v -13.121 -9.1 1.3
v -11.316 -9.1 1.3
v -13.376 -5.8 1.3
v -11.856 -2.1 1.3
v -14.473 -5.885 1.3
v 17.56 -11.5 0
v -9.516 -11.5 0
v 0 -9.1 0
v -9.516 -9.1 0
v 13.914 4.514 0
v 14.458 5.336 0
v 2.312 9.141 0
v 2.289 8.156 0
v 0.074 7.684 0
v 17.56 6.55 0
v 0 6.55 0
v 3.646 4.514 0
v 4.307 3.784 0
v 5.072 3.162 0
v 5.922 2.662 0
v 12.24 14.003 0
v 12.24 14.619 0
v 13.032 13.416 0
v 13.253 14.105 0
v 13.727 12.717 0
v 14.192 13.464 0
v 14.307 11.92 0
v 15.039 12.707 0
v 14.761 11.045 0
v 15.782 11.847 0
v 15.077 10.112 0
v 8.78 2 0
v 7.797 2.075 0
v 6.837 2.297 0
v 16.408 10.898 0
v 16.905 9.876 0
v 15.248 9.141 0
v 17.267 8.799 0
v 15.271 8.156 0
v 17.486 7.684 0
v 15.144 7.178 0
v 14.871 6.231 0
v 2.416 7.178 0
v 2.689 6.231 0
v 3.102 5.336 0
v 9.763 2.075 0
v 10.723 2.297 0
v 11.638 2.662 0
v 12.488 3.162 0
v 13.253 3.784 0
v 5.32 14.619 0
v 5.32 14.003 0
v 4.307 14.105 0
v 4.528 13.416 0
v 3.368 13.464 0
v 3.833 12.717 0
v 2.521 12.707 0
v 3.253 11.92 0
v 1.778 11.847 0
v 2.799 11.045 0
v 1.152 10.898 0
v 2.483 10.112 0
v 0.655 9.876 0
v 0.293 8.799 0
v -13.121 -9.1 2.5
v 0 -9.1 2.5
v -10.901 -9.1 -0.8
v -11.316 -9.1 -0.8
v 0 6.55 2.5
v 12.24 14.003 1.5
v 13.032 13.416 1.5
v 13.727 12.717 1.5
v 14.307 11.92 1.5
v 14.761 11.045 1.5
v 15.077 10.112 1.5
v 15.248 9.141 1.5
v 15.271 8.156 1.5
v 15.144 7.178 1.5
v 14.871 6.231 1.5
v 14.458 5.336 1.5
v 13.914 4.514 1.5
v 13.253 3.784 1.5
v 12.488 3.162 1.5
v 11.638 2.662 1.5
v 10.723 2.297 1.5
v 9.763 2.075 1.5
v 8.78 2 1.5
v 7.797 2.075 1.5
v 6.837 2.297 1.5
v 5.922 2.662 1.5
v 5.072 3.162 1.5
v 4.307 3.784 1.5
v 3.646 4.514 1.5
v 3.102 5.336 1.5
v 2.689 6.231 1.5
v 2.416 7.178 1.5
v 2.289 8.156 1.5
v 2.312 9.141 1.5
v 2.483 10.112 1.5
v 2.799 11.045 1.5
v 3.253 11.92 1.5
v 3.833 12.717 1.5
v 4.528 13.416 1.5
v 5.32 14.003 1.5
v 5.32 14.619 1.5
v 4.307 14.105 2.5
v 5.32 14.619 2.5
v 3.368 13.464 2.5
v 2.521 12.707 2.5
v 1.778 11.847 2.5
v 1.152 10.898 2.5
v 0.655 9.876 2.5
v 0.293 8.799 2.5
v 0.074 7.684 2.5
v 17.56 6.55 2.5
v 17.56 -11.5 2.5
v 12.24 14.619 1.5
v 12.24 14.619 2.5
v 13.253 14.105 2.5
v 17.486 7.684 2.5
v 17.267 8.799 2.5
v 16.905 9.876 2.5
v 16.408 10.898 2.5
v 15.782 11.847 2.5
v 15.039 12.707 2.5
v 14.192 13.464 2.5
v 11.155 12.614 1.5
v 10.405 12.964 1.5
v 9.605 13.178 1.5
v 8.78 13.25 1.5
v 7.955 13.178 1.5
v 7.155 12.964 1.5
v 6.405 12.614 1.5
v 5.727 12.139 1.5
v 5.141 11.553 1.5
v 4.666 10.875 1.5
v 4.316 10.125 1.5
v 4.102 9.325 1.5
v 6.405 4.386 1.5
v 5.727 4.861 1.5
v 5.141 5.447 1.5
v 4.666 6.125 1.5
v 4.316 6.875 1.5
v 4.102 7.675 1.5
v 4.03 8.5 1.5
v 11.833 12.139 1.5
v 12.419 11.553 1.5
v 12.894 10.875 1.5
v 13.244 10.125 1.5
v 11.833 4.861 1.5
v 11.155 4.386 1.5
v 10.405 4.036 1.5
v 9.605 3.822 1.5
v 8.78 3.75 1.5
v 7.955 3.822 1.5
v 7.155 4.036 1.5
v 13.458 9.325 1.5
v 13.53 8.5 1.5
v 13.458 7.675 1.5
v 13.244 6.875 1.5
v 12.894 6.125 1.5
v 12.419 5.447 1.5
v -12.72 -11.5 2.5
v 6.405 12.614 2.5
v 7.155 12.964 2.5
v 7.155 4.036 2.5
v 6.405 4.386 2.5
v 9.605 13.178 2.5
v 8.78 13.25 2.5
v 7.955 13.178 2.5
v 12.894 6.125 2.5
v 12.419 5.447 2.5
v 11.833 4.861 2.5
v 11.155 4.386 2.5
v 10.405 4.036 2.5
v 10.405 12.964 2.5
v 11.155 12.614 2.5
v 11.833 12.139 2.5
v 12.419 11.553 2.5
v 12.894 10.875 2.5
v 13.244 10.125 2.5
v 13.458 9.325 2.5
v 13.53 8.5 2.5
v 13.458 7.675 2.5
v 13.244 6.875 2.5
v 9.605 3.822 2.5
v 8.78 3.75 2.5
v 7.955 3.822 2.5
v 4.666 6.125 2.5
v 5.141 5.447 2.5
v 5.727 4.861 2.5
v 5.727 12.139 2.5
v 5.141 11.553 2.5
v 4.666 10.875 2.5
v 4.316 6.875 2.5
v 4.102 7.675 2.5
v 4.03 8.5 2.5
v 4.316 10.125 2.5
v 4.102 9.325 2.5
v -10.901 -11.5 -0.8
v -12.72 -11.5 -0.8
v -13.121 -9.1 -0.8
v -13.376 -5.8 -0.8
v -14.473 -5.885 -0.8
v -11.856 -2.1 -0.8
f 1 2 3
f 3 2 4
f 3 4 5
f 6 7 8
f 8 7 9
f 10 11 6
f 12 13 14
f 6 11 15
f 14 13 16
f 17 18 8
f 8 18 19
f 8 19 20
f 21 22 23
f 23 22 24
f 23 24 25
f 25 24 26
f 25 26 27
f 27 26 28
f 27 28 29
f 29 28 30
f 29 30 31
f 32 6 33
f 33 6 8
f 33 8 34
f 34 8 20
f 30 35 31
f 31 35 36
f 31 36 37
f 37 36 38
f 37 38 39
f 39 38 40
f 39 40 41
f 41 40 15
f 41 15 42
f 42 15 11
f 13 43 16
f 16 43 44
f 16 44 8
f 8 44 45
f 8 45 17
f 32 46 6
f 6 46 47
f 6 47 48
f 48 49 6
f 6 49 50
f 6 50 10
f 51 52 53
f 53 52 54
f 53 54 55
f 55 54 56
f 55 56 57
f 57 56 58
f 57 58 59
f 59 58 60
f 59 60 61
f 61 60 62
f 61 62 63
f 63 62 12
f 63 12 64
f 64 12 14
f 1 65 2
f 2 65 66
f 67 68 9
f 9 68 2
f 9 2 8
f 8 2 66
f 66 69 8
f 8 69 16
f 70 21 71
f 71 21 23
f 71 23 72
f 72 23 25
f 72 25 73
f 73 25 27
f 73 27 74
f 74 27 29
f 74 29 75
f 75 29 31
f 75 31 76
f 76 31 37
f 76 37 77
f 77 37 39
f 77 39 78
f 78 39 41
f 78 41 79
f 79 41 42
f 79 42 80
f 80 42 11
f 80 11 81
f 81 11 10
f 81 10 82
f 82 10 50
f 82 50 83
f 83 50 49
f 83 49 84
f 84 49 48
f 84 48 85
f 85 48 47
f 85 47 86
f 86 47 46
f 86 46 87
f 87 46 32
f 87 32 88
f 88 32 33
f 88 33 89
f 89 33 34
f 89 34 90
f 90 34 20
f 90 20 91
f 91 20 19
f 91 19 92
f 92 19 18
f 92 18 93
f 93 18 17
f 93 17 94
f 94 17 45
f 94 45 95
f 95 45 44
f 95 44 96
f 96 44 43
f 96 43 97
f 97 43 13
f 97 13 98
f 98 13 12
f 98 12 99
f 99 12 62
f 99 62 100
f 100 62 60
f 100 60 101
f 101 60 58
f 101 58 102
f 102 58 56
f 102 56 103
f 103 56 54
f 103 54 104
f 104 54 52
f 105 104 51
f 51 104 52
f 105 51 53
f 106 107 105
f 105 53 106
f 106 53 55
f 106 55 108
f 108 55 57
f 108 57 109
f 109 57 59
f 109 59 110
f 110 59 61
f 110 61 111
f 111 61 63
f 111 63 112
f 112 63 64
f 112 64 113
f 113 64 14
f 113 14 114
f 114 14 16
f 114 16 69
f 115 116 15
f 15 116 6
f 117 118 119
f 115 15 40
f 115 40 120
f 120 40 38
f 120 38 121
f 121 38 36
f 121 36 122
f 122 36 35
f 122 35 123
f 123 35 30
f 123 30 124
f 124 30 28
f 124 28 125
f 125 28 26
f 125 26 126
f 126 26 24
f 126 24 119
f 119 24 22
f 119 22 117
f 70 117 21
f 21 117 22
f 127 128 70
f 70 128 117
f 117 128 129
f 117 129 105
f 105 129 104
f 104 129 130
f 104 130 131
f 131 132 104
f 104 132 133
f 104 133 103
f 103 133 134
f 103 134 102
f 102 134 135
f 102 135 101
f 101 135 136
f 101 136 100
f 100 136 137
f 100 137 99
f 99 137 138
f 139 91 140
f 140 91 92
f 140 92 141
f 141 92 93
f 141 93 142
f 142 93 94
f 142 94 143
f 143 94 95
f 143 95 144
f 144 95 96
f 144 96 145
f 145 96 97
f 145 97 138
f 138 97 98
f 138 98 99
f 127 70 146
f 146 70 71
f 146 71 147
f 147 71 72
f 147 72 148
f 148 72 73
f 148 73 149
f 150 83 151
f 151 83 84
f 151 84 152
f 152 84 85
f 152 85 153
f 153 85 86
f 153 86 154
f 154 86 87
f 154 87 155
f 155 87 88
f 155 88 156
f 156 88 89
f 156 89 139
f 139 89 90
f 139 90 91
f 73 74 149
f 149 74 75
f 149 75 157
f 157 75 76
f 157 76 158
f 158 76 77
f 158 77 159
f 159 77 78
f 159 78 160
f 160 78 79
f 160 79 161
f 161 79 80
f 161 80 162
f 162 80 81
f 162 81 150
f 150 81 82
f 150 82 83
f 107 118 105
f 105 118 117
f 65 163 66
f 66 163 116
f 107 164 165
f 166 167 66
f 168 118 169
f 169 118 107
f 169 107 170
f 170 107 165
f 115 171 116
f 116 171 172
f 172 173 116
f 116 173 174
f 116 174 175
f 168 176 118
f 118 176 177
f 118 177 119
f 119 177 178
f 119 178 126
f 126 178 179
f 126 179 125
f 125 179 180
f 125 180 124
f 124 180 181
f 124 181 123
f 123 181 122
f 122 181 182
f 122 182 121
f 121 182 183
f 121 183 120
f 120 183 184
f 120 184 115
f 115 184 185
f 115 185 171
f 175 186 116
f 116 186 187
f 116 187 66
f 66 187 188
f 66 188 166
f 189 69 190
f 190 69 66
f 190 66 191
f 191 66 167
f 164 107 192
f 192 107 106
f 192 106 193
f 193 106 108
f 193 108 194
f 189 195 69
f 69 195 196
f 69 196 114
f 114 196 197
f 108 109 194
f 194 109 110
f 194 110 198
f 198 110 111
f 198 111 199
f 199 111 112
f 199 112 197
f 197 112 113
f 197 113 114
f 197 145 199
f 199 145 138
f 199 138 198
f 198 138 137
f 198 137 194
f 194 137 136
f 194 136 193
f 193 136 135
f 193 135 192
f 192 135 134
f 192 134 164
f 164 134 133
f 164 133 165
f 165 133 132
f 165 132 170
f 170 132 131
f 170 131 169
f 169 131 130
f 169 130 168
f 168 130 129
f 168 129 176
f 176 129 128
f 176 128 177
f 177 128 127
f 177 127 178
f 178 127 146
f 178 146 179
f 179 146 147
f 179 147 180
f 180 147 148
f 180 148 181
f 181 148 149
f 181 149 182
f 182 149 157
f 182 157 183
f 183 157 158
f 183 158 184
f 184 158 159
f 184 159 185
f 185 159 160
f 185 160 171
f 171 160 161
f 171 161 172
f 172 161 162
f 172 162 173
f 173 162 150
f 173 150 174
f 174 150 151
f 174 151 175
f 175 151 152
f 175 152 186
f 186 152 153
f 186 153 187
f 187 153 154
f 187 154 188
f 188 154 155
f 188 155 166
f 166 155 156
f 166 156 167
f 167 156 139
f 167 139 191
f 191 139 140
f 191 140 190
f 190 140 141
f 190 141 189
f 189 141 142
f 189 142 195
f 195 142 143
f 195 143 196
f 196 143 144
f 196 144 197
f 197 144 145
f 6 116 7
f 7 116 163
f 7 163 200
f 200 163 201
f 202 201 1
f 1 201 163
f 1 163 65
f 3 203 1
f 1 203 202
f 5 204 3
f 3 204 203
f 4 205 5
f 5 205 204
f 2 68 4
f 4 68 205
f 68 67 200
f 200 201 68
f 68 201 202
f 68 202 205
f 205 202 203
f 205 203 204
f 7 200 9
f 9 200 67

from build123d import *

# Parameters (mm, degrees)
BOSS_EXTRUDE1_DEPTH      = 1.5
BOSS_EXTRUDE2_DEPTH      = 1
SKETCH4_R                = 4.75
CUT_EXTRUDE1_DEPTH       = 23.898325822
SKETCH5_W                = 17.56
SKETCH5_H                = 2.5
BOSS_EXTRUDE3_DEPTH      = 0.15
SKETCH6_W                = 17.56
SKETCH6_H                = 2.5
BOSS_EXTRUDE4_DEPTH      = 11.35
SKETCH7_W                = 2.5
SKETCH7_H                = 2.4
BOSS_EXTRUDE5_DEPTH      = 12.72
BOSS_EXTRUDE6_DEPTH      = 0.8
BOSS_EXTRUDE6_DEPTH_BACK = 1.3
SKETCH9_W                = 1.40416608
SKETCH9_H                = 2.4
BOSS_EXTRUDE7_DEPTH      = 0.8
CHAMFER3_SIZE            = 1.039230485
CHAMFER3_SIZE_2          = 1.8
BOSS_EXTRUDE8_DEPTH      = 1.2


with BuildPart() as part:
    # Sketch1 → Boss-Extrude1 (new body)
    with BuildSketch(Plane.XY):
        with BuildLine():
            ThreePointArc((14.980604809, 6.55), (8.78, 2), (2.579395191, 6.55))
            Line((2.579395191, 6.55), (0, 6.55))
            Line((0, 6.55), (0, 0))
            Line((0, 0), (17.56, 0))
            Line((17.56, 0), (17.56, 6.55))
            Line((17.56, 6.55), (14.980604809, 6.55))
        make_face()
        with BuildLine():
            ThreePointArc((2.579395191, 6.55), (2.679421093, 10.743420825), (5.32, 14.002581212))
            Line((5.32, 14.002581212), (5.32, 14.619498126))
            ThreePointArc((5.32, 14.619498126), (1.449679407, 11.382680416), (0, 6.55))
            Line((0, 6.55), (2.579395191, 6.55))
        make_face()
        with BuildLine():
            ThreePointArc((12.24, 14.002581212), (14.880578907, 10.743420825), (14.980604809, 6.55))
            Line((14.980604809, 6.55), (17.56, 6.55))
            ThreePointArc((17.56, 6.55), (16.110320593, 11.382680416), (12.24, 14.619498126))
            Line((12.24, 14.619498126), (12.24, 14.002581212))
        make_face()
    extrude(amount=BOSS_EXTRUDE1_DEPTH)

    # Sketch3 → Boss-Extrude2 (add)
    with BuildSketch(Plane.XY.offset(1.5)):
        with BuildLine():
            Line((12.24, 14.619498126), (12.24, 14.002581212))
            ThreePointArc((12.24, 14.002581212), (8.78, 2), (5.32, 14.002581212))
            Line((5.32, 14.002581212), (5.32, 14.619498126))
            ThreePointArc((5.32, 14.619498126), (1.449679407, 11.382680416), (0, 6.55))
            Line((0, 6.55), (0, 0))
            Line((0, 0), (17.56, 0))
            Line((17.56, 0), (17.56, 6.55))
            ThreePointArc((17.56, 6.55), (16.110320593, 11.382680416), (12.24, 14.619498126))
        make_face()
        with BuildLine():
            Line((5.32, 14.619498126), (12.24, 14.619498126))
            Line((12.24, 14.619498126), (12.24, 14.002581212))
            ThreePointArc((12.24, 14.002581212), (8.78, 2), (5.32, 14.002581212))
            Line((5.32, 14.002581212), (5.32, 14.619498126))
        make_face()
    extrude(amount=BOSS_EXTRUDE2_DEPTH)

    # Sketch4 → Cut-Extrude1 (cut, through all)
    with BuildSketch(Plane(origin=(0, 0, 1.5), x_dir=(-1, 0, 0), z_dir=(0, 0, -1))):
        with Locations((-8.78, 8.5)):
            Circle(SKETCH4_R)
    extrude(amount=-CUT_EXTRUDE1_DEPTH, mode=Mode.SUBTRACT)

    # Sketch5 → Boss-Extrude3 (add)
    with BuildSketch(Plane.XZ):
        with Locations((8.78, 1.25)):
            Rectangle(SKETCH5_W, SKETCH5_H)
    extrude(amount=BOSS_EXTRUDE3_DEPTH)

    # Sketch6 → Boss-Extrude4 (add)
    with BuildSketch(Plane.XZ.offset(0.15)):
        with Locations((8.78, 1.25)):
            Rectangle(SKETCH6_W, SKETCH6_H)
    extrude(amount=BOSS_EXTRUDE4_DEPTH)

    # Sketch7 → Boss-Extrude5 (add)
    with BuildSketch(Plane.ZY):
        with Locations((1.25, -10.3)):
            Rectangle(SKETCH7_W, SKETCH7_H)
    extrude(amount=BOSS_EXTRUDE5_DEPTH)

    # Sketch8 → Boss-Extrude6 (add, two sides: drawn at the far end of the back side and taken through both)
    with BuildSketch(Plane(origin=(0, 0, 0), x_dir=(-1, 0, 0), z_dir=(0, 0, -1)).offset(-BOSS_EXTRUDE6_DEPTH_BACK)):
        Polygon((13.121190309, -9.1), (13.375962235, -5.8), (14.472698599, -5.884672011), (11.85625922, -2.1), (11.31583392, -9.1), (12.72, -9.1), (12.72, -11.5), align=None)
    extrude(amount=BOSS_EXTRUDE6_DEPTH + BOSS_EXTRUDE6_DEPTH_BACK)

    # Sketch9 → Boss-Extrude7 (add)
    with BuildSketch(Plane(origin=(0, 0, 0), x_dir=(-1, 0, 0), z_dir=(0, 0, -1))):
        with Locations((12.01791696, -10.3)):
            Rectangle(SKETCH9_W, SKETCH9_H)
    extrude(amount=BOSS_EXTRUDE7_DEPTH)

    # Chamfer3
    # the kernel refuses this chamfer: 1.8, 1.039230485 mm, written as the material it adds along each edge
    with BuildSketch(Plane(origin=(-11.31583392, -11.5, 0), x_dir=(-0.05789386240267112, 0, -0.9983227437537925), z_dir=(0, 1, 0))) as chamfer3_piece_1_section:
        Polygon((CHAMFER3_SIZE * 0.998322743313, -CHAMFER3_SIZE * 0.0578938623771), (-CHAMFER3_SIZE_2 * 0.0578938624027, -CHAMFER3_SIZE_2 * 0.998322743754), (0, 0), align=None)
    chamfer3_piece_1 = extrude(amount=2.4, mode=Mode.PRIVATE)
    chamfer3_piece_1 = split(chamfer3_piece_1, bisect_by=Plane(origin=(-11.20125383, -10.584128582, -0.396089169), z_dir=(-0.9970330575262718, -0.07697455553502185, 0)), keep=Keep.TOP, mode=Mode.PRIVATE)
    chamfer3_piece_1 = split(chamfer3_piece_1, bisect_by=Plane(origin=(-11.276211274, -10.589915567, -0.8), z_dir=(0, 0, 1)), keep=Keep.TOP, mode=Mode.PRIVATE)
    add(chamfer3_piece_1)
    with BuildSketch(Plane(origin=(-11.31583392, -11.5, 0), x_dir=(-0.05789386240267112, 0, -0.9983227437537925), z_dir=(0, 1, 0))) as chamfer3_piece_2_section:
        Polygon((CHAMFER3_SIZE * 0.998322743313, -CHAMFER3_SIZE * 0.0578938623771), (-CHAMFER3_SIZE_2 * 0.0578938624027, -CHAMFER3_SIZE_2 * 0.998322743754), (0, 0), align=None)
    chamfer3_piece_2 = extrude(amount=2.4, mode=Mode.PRIVATE)
    chamfer3_piece_2 = split(chamfer3_piece_2, bisect_by=Plane(origin=(-11.222198101, -10.312842427, -0.281258227), z_dir=(0.9970330575262718, 0.07697455553502185, 0)), keep=Keep.TOP, mode=Mode.PRIVATE)
    chamfer3_piece_2 = split(chamfer3_piece_2, bisect_by=Plane(origin=(-10.603533265, -10.265079266, -0.8), z_dir=(0, 0, 1)), keep=Keep.TOP, mode=Mode.PRIVATE)
    add(chamfer3_piece_2)

    # Sketch10 → Boss-Extrude8 (add)
    with BuildSketch(Plane.XY.offset(1.3)):
        Polygon((-12.72, -11.5), (-12.72, -9.1), (-13.121190309, -9.1), align=None)
    extrude(amount=BOSS_EXTRUDE8_DEPTH)


solid = part.part
